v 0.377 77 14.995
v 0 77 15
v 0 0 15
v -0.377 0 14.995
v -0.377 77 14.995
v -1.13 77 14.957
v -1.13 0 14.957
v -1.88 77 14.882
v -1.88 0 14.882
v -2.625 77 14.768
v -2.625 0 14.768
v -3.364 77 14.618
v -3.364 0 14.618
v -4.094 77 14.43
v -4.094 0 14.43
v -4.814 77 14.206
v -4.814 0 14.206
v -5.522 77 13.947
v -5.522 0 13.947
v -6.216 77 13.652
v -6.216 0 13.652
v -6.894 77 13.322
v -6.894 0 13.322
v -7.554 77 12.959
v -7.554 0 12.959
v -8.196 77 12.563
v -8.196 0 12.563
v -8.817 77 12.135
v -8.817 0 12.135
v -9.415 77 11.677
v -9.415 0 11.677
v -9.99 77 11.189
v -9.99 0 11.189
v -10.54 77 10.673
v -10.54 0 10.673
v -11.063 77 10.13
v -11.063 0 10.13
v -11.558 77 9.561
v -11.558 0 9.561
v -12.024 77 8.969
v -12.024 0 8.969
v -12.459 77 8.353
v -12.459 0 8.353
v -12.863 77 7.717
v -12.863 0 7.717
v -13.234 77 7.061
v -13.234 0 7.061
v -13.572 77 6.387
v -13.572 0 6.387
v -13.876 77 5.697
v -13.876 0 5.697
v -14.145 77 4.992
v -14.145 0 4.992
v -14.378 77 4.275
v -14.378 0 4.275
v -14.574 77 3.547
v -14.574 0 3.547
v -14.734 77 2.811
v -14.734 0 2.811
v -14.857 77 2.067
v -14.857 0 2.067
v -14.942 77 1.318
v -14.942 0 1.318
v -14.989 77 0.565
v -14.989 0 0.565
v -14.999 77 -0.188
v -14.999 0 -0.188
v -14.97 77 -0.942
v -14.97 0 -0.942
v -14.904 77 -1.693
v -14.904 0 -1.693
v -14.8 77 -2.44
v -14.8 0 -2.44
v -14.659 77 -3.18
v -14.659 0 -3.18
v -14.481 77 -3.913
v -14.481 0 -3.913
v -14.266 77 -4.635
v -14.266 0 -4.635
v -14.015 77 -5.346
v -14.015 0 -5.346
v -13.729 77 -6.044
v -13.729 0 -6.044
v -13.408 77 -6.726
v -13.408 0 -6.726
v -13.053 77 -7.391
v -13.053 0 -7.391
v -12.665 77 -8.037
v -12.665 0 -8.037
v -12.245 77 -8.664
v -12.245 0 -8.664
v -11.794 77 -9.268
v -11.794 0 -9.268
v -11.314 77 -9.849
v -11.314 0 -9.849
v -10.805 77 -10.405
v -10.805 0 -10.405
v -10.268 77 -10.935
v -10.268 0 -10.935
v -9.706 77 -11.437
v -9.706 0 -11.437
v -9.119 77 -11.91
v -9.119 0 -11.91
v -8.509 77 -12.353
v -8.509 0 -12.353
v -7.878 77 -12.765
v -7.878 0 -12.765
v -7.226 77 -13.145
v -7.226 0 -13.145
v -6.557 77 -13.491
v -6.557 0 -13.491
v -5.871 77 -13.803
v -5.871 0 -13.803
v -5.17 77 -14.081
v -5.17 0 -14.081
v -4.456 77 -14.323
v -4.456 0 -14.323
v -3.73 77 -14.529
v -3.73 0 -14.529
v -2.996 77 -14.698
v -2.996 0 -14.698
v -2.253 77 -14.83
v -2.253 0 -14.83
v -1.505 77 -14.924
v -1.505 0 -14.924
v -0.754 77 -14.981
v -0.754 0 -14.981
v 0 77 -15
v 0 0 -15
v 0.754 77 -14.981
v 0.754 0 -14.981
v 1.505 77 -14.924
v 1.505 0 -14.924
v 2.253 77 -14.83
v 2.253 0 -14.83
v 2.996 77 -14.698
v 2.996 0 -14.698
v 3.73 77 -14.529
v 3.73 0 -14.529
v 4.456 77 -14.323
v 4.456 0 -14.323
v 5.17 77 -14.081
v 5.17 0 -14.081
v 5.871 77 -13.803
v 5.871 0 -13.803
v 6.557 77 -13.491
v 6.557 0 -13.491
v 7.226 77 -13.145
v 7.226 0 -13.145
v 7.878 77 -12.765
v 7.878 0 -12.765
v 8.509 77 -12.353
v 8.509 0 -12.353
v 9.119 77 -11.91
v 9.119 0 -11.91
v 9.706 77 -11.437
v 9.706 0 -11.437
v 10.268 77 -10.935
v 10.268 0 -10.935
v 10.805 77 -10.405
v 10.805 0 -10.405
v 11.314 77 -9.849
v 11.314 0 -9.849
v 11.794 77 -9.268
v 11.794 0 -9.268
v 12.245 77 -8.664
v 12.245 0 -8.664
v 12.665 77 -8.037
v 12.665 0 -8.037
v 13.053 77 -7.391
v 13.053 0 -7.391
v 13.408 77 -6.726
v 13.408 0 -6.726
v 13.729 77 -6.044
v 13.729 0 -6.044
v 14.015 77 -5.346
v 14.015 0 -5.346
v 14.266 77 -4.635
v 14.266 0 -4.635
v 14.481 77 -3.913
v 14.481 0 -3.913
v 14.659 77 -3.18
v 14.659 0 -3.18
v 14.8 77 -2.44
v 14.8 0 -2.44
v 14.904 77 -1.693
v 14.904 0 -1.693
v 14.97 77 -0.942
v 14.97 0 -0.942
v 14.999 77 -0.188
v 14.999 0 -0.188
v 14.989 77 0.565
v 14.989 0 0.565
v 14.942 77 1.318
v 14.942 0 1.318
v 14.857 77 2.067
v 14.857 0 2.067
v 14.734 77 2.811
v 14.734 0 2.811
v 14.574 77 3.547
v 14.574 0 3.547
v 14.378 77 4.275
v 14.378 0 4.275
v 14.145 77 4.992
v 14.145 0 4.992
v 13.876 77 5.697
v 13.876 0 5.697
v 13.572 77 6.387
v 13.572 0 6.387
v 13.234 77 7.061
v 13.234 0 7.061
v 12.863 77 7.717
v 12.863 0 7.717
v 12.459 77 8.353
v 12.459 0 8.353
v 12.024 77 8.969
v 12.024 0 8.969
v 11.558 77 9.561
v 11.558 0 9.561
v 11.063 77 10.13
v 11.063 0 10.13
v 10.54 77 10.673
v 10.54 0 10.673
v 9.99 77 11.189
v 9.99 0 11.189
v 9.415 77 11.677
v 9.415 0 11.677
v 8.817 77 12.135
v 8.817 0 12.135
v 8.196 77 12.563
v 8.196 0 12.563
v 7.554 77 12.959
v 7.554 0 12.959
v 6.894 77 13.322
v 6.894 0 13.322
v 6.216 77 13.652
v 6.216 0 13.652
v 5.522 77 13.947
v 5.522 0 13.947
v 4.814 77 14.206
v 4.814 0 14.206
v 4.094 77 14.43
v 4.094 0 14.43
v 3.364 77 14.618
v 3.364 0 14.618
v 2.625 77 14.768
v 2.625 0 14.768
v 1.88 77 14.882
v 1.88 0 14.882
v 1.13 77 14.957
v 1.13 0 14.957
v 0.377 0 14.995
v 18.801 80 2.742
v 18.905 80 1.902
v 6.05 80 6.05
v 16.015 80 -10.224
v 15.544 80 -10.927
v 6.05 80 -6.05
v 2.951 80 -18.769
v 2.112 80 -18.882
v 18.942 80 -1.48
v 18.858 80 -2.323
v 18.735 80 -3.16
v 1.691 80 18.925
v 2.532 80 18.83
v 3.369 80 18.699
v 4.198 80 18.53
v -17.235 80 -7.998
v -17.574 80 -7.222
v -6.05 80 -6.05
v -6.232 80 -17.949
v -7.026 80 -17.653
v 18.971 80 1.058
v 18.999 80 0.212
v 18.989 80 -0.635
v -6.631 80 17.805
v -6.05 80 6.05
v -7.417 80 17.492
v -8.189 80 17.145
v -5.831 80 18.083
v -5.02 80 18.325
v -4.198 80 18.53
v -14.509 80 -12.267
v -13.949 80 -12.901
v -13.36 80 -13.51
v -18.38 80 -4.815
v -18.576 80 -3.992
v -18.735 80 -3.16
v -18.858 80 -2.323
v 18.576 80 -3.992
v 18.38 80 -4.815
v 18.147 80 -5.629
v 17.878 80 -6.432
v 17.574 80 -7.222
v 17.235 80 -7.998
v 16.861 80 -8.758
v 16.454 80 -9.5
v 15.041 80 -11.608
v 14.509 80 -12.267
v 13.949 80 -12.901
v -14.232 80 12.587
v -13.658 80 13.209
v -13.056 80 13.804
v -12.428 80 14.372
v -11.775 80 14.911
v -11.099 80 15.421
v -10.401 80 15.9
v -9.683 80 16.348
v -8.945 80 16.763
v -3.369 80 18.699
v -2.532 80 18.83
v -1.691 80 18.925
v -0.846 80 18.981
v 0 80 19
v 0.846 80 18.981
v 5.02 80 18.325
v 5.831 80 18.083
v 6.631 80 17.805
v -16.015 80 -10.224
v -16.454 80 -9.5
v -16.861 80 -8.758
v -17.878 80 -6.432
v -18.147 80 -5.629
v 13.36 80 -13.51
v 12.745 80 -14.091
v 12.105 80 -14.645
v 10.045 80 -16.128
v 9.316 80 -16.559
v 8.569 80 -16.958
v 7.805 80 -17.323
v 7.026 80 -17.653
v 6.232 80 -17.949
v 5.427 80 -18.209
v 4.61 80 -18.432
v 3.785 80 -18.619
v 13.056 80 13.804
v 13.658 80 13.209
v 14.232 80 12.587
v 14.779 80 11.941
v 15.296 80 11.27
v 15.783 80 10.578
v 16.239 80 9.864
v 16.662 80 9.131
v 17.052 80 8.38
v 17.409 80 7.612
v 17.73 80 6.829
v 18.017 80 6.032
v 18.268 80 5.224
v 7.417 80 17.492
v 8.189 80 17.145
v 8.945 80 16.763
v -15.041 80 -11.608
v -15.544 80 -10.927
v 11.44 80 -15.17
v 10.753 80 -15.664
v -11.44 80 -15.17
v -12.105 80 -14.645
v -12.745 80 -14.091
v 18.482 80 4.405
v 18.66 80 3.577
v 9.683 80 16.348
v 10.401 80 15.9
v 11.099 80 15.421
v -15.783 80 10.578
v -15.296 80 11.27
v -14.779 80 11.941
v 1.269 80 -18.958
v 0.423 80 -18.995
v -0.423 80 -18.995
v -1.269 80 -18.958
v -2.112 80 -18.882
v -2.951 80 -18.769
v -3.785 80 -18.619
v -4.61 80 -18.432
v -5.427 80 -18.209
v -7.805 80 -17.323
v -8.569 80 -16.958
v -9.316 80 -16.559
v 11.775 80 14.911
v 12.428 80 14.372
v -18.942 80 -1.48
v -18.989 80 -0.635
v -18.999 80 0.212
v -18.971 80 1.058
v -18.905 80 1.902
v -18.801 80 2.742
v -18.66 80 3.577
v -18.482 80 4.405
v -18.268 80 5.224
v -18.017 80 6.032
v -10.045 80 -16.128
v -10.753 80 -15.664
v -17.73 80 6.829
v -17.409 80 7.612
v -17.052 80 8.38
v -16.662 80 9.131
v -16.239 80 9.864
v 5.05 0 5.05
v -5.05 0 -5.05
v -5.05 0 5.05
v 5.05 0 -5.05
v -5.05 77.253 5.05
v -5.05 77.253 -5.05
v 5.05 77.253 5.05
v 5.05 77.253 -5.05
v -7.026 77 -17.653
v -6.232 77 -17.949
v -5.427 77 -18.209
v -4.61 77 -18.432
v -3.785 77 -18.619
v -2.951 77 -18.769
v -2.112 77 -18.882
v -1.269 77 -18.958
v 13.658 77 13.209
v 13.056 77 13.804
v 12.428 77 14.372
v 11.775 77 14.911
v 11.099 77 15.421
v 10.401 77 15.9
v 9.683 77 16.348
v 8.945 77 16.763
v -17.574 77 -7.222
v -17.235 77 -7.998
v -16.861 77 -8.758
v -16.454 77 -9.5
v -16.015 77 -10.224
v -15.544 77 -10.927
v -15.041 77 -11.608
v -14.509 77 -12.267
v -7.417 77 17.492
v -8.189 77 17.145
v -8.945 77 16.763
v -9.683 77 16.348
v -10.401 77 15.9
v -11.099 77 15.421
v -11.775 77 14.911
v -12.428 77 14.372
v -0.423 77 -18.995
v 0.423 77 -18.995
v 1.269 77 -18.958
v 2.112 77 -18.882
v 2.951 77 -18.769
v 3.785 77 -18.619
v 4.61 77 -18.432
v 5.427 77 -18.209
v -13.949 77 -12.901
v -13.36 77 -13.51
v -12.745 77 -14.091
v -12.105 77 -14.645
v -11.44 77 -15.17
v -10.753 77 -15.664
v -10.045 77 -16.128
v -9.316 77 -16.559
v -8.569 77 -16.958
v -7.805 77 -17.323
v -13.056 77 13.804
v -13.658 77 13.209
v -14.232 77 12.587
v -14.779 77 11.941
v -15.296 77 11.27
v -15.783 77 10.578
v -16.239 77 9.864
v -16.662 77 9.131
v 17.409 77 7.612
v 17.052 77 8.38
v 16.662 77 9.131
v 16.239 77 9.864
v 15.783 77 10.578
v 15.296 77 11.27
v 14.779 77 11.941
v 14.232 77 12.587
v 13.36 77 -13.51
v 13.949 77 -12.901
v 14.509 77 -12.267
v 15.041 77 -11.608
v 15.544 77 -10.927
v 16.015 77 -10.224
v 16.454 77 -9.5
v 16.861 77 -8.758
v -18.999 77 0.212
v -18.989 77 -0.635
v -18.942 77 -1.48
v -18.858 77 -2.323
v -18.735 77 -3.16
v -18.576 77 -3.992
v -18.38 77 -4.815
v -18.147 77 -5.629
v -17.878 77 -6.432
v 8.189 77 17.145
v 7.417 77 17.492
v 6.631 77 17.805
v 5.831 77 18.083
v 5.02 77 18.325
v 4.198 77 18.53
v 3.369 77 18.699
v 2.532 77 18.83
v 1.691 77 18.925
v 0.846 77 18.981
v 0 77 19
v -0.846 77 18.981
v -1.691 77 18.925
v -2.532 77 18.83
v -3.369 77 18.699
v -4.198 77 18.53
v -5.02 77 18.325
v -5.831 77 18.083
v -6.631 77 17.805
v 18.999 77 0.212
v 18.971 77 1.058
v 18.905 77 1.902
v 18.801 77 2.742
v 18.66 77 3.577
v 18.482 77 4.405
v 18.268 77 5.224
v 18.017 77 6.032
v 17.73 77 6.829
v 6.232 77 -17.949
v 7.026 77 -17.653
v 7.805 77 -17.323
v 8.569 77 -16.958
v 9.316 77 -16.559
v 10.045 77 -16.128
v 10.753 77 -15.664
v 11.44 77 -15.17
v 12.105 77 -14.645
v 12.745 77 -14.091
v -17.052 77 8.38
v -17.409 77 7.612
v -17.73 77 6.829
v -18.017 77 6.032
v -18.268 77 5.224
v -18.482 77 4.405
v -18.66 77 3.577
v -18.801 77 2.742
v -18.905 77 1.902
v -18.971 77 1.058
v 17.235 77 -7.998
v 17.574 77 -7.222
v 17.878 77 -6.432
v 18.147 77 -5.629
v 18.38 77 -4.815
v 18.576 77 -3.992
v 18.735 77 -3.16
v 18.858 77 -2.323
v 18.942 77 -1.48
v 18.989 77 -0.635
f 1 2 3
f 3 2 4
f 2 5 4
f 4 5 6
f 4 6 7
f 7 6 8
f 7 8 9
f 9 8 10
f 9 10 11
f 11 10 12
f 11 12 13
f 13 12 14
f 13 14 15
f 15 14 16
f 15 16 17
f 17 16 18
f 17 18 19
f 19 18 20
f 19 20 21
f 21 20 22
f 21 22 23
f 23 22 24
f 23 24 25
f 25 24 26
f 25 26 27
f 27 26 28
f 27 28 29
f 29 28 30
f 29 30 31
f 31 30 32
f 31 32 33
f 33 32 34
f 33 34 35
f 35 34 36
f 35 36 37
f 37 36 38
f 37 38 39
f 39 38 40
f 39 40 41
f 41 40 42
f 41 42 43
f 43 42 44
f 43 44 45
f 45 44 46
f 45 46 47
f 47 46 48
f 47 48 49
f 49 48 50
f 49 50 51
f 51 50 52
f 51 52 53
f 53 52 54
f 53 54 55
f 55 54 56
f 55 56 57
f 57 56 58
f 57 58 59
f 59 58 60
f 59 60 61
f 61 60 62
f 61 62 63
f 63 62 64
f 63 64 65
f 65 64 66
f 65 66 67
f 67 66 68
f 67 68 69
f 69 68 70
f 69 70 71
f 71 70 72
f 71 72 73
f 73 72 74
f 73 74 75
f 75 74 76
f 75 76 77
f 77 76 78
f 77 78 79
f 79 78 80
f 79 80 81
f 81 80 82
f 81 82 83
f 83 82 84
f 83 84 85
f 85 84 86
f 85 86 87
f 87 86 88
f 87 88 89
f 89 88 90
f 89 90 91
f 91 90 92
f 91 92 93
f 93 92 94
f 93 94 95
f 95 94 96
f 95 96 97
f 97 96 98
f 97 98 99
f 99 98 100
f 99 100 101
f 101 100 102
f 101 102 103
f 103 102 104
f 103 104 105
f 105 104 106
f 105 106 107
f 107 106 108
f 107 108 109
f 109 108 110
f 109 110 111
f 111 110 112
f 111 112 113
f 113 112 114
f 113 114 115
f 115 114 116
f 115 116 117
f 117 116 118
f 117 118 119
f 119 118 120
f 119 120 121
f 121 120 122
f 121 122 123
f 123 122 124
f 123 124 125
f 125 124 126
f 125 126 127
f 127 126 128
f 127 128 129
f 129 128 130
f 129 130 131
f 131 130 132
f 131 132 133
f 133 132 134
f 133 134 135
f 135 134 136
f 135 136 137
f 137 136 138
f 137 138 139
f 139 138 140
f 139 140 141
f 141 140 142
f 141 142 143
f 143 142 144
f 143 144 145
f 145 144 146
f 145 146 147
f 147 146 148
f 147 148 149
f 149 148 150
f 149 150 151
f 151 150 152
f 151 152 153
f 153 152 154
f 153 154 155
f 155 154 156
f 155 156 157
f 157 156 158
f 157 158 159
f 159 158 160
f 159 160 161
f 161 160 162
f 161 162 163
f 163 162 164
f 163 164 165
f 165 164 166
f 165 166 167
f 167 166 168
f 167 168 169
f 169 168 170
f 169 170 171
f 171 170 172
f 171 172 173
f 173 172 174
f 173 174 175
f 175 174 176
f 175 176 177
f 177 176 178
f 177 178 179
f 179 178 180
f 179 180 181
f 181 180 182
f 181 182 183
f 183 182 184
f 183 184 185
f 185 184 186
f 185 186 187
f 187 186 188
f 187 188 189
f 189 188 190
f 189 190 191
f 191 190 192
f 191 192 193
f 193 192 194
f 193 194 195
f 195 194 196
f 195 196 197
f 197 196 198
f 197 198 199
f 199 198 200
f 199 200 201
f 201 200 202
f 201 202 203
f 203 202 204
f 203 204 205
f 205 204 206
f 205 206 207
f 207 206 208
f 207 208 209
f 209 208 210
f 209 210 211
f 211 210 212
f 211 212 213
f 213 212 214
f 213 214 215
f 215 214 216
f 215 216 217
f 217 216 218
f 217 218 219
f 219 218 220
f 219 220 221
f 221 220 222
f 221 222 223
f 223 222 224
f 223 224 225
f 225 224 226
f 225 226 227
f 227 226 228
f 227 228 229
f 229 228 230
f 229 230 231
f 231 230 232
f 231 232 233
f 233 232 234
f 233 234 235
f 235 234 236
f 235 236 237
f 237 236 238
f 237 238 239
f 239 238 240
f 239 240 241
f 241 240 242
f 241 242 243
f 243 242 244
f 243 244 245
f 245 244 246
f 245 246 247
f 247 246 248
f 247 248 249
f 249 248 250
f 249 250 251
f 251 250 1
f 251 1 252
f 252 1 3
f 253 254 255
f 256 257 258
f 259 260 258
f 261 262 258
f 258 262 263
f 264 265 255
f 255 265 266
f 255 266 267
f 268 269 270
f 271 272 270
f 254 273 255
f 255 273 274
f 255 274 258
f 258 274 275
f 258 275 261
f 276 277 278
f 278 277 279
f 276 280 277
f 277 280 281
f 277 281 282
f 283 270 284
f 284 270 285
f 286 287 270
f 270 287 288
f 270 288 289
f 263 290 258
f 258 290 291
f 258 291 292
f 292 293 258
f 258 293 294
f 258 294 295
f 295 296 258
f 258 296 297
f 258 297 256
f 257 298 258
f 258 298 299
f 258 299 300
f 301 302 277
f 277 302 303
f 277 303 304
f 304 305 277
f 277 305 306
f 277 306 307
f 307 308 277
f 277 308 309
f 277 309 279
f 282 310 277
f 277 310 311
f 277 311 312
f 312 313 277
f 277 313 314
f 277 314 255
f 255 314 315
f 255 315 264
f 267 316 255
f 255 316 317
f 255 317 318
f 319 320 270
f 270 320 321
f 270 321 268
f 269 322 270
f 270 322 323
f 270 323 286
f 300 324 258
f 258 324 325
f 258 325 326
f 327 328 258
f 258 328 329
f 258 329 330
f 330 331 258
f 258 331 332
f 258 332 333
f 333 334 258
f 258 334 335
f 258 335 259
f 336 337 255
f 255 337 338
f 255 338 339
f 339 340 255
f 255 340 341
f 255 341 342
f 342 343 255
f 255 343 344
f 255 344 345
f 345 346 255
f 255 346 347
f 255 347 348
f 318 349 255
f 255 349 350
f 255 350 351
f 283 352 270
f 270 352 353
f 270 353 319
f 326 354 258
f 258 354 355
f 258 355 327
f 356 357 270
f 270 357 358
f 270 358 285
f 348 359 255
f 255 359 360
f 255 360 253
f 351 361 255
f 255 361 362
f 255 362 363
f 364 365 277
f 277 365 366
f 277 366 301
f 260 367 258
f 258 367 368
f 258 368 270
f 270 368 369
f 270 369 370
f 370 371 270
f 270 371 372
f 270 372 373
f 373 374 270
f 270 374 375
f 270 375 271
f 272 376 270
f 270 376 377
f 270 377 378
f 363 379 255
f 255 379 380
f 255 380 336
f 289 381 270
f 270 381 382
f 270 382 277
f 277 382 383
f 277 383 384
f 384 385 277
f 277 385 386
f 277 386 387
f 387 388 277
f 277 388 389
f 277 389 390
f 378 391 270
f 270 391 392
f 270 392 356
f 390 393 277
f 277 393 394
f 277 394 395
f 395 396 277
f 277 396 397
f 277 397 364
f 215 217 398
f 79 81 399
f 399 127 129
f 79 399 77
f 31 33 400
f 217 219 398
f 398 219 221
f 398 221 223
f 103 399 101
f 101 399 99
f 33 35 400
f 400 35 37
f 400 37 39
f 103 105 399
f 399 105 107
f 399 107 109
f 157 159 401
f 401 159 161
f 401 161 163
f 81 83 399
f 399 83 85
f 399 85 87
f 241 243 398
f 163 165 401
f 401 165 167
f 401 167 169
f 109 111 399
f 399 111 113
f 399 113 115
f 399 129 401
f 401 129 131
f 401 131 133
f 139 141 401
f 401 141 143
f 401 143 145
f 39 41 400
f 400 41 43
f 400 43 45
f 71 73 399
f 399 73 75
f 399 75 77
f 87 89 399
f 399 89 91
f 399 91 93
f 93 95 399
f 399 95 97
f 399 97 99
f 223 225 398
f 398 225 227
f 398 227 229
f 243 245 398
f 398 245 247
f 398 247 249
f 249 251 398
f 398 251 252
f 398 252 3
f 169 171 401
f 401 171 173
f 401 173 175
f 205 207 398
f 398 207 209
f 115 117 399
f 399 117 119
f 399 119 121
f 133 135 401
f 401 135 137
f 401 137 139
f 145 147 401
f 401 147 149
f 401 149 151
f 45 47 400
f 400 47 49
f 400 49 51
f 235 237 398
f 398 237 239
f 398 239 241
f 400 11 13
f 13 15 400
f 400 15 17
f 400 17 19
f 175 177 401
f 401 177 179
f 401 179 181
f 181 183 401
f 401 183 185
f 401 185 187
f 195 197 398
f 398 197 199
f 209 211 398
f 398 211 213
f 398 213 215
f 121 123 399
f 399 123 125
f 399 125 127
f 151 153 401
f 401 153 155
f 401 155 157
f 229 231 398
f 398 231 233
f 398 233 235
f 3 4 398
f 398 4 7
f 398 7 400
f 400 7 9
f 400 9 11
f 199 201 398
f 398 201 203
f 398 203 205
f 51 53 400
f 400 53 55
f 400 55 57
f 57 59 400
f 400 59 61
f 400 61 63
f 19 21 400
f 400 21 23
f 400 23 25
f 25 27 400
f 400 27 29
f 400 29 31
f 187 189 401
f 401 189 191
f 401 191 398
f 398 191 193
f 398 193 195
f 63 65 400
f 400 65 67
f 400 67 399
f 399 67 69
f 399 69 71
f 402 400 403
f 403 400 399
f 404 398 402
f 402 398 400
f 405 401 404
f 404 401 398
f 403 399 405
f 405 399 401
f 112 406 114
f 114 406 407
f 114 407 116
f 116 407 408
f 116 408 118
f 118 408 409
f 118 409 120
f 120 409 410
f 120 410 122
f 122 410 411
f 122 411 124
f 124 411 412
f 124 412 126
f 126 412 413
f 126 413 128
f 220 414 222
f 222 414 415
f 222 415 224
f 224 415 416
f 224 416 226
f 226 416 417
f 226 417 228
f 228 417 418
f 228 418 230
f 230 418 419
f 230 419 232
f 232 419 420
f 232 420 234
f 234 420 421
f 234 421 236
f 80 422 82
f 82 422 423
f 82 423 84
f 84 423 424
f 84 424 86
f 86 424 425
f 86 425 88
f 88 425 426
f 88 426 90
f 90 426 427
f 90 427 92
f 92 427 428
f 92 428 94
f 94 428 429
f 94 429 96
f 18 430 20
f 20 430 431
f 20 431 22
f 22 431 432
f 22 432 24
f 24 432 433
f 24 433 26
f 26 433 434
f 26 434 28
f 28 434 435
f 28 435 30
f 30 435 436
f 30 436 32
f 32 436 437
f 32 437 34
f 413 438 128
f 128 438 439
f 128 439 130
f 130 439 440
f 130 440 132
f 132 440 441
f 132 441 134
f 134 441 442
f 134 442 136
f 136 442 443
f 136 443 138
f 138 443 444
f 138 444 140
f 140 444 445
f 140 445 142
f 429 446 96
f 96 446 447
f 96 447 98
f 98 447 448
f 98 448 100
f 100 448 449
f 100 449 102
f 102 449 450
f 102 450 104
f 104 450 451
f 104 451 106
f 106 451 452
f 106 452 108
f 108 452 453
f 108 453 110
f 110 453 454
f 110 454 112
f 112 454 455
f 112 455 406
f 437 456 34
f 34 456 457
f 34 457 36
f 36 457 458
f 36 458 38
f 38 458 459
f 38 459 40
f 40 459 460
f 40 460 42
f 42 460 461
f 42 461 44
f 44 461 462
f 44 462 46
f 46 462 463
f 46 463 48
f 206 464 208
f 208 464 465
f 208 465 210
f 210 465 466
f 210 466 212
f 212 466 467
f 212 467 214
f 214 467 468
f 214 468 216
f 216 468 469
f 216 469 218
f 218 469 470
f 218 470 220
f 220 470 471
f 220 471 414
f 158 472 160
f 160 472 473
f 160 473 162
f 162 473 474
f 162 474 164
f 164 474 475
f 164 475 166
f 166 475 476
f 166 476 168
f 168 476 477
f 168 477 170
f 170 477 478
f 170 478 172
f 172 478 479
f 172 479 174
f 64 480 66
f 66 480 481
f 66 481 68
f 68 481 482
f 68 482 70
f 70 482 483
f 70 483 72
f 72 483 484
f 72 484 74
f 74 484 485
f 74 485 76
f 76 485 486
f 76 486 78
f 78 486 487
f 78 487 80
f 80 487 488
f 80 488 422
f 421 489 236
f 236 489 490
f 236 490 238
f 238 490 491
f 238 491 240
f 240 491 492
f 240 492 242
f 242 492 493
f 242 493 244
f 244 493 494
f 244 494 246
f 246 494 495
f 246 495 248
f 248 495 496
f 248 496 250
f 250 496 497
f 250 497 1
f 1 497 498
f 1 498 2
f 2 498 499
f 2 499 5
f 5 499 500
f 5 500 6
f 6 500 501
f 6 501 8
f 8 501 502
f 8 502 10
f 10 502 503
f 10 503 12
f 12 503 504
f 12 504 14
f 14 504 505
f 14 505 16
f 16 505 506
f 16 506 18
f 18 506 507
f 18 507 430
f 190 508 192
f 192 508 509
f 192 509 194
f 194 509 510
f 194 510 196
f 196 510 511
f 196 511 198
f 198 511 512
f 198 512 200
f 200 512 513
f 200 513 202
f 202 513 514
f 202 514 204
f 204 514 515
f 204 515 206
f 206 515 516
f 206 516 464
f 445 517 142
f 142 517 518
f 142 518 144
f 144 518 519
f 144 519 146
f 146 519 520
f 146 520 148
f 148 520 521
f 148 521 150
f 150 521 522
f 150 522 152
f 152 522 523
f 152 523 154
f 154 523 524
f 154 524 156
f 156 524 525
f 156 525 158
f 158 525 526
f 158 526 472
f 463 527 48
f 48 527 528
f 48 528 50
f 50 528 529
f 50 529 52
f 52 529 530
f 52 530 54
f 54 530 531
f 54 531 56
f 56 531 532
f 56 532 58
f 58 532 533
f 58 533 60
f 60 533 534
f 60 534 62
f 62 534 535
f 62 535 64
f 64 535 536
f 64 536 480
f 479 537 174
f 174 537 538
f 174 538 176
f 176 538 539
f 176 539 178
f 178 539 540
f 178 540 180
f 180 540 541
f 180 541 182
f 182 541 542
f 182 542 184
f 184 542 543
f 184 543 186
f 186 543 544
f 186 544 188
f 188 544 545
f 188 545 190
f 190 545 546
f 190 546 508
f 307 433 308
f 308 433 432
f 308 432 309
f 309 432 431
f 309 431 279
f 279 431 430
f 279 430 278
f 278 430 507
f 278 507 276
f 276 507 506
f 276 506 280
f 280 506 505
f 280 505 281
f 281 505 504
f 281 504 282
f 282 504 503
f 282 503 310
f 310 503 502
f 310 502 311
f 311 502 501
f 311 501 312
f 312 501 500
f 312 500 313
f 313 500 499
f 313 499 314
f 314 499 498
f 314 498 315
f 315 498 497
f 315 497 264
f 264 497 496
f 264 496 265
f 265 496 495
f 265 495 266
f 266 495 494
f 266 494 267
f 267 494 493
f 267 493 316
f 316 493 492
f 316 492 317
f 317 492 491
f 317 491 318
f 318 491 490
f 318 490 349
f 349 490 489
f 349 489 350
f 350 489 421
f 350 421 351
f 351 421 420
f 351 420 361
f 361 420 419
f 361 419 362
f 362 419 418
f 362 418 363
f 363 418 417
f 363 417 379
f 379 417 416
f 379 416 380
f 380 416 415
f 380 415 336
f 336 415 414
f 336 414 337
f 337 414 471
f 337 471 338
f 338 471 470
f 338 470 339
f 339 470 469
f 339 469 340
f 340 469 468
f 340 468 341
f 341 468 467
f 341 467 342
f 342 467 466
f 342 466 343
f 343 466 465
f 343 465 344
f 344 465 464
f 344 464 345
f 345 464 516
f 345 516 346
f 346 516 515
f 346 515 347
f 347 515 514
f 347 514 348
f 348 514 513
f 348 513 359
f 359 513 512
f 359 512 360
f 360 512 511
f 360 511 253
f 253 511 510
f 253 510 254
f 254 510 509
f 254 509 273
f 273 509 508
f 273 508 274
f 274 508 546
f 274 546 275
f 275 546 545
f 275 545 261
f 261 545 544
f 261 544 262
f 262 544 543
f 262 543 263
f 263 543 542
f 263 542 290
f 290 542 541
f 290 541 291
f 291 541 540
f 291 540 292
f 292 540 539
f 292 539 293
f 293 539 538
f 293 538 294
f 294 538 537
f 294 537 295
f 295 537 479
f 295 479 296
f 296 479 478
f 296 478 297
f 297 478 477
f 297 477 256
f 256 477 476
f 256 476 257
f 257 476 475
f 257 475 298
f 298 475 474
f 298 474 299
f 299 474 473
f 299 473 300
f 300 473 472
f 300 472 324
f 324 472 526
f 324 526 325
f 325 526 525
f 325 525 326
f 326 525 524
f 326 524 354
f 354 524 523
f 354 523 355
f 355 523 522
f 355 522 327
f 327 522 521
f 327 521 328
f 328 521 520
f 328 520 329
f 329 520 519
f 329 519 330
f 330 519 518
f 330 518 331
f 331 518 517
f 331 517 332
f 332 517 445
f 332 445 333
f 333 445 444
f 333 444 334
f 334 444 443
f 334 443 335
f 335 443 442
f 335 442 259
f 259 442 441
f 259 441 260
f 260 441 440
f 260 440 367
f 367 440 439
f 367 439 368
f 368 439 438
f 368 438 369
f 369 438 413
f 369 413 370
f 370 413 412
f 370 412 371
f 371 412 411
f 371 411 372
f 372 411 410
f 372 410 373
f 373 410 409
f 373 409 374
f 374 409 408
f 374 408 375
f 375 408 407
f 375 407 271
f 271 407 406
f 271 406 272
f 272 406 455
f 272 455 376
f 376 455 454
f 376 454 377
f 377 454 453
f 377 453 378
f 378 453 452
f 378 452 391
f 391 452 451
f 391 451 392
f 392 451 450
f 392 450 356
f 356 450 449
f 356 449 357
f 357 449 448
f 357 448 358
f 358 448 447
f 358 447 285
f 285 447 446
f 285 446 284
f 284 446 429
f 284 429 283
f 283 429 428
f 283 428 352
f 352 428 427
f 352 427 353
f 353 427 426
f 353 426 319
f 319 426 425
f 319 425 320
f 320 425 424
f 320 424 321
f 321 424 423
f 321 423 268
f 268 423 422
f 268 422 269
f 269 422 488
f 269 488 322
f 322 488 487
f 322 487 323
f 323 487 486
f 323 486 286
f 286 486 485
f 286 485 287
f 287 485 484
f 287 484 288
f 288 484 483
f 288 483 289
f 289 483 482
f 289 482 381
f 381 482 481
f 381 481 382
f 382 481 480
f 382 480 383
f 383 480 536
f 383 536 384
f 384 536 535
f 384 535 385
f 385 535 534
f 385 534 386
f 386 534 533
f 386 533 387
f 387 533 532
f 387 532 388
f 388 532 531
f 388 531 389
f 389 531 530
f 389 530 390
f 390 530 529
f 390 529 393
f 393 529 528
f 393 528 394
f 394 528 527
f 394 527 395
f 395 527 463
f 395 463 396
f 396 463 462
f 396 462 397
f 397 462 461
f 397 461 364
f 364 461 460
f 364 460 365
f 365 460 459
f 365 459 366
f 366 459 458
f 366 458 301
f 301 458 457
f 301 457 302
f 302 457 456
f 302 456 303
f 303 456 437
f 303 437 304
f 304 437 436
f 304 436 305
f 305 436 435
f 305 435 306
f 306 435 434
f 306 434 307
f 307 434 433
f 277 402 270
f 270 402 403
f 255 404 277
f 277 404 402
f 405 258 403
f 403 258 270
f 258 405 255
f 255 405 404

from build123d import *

# Parameters (mm, degrees)
SKETCH_1_R          = 15
SKETCH_1_W          = 10.1
SKETCH_1_H          = 10.1
EXTRUDE_1_DEPTH     = 80
SKETCH1_R           = 19
SKETCH1_W           = 10.1
SKETCH1_H           = 10.1
BOSS_EXTRUDE1_DEPTH = 3
CHAMFER1_SIZE       = 1
CHAMFER1_SIZE2      = 2.747477419


with BuildPart() as part:
    # Эскиз1 → Бобышка-Вытянуть1 (new body)
    with BuildSketch(Plane(origin=(0, 0, 0), x_dir=(1, 0, 0), z_dir=(0, 1, 0))):
        Circle(SKETCH_1_R)
        Rectangle(SKETCH_1_W, SKETCH_1_H, mode=Mode.SUBTRACT)
    extrude(amount=EXTRUDE_1_DEPTH)

    # Sketch1 → Boss-Extrude1 (add)
    with BuildSketch(Plane(origin=(0, 80, 0), x_dir=(1, 0, 0), z_dir=(0, 1, 0))):
        Circle(SKETCH1_R)
        Rectangle(SKETCH1_W, SKETCH1_H, mode=Mode.SUBTRACT)
    extrude(amount=-BOSS_EXTRUDE1_DEPTH)

    # Chamfer1
    chamfer1_edges = [part.edges().sort_by_distance(p)[0] for p in [
        (0, 80, -5.05),
        (-5.05, 80, 0),
        (0, 80, 5.05),
        (5.05, 80, 0),
    ]]
    chamfer1_side = [part.faces().sort_by_distance(p)[0] for p in [
        (-18.462598846, 80, 0),
    ]]
    chamfer(chamfer1_edges, length=CHAMFER1_SIZE, length2=CHAMFER1_SIZE2, reference=chamfer1_side[0])


solid = part.part
